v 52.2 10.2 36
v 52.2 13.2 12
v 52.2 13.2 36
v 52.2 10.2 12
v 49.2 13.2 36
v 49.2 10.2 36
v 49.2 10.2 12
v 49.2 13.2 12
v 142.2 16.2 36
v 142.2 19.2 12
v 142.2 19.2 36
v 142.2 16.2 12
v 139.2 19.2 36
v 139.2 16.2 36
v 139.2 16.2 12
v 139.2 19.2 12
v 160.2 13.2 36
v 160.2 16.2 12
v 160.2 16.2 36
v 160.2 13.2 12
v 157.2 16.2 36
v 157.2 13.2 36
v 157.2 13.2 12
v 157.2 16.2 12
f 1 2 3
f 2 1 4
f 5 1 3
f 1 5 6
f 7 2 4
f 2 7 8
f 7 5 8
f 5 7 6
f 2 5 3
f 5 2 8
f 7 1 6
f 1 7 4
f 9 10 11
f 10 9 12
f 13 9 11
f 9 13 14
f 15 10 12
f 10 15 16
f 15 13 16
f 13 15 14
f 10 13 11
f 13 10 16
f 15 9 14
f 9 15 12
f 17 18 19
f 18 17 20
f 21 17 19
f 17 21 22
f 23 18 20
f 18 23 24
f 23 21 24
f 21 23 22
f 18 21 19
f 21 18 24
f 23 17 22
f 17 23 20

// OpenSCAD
union() {
	translate(v = [49.2, 10.200000000000001, 12.0]) {
		cube(size = [3.0, 3.0, 24.0]);
	}
	translate(v = [139.2, 16.200000000000003, 12.0]) {
		cube(size = [3.0, 3.0, 24.0]);
	}
	translate(v = [157.2, 13.200000000000001, 12.0]) {
		cube(size = [3.0, 3.0, 24.0]);
	}
}
